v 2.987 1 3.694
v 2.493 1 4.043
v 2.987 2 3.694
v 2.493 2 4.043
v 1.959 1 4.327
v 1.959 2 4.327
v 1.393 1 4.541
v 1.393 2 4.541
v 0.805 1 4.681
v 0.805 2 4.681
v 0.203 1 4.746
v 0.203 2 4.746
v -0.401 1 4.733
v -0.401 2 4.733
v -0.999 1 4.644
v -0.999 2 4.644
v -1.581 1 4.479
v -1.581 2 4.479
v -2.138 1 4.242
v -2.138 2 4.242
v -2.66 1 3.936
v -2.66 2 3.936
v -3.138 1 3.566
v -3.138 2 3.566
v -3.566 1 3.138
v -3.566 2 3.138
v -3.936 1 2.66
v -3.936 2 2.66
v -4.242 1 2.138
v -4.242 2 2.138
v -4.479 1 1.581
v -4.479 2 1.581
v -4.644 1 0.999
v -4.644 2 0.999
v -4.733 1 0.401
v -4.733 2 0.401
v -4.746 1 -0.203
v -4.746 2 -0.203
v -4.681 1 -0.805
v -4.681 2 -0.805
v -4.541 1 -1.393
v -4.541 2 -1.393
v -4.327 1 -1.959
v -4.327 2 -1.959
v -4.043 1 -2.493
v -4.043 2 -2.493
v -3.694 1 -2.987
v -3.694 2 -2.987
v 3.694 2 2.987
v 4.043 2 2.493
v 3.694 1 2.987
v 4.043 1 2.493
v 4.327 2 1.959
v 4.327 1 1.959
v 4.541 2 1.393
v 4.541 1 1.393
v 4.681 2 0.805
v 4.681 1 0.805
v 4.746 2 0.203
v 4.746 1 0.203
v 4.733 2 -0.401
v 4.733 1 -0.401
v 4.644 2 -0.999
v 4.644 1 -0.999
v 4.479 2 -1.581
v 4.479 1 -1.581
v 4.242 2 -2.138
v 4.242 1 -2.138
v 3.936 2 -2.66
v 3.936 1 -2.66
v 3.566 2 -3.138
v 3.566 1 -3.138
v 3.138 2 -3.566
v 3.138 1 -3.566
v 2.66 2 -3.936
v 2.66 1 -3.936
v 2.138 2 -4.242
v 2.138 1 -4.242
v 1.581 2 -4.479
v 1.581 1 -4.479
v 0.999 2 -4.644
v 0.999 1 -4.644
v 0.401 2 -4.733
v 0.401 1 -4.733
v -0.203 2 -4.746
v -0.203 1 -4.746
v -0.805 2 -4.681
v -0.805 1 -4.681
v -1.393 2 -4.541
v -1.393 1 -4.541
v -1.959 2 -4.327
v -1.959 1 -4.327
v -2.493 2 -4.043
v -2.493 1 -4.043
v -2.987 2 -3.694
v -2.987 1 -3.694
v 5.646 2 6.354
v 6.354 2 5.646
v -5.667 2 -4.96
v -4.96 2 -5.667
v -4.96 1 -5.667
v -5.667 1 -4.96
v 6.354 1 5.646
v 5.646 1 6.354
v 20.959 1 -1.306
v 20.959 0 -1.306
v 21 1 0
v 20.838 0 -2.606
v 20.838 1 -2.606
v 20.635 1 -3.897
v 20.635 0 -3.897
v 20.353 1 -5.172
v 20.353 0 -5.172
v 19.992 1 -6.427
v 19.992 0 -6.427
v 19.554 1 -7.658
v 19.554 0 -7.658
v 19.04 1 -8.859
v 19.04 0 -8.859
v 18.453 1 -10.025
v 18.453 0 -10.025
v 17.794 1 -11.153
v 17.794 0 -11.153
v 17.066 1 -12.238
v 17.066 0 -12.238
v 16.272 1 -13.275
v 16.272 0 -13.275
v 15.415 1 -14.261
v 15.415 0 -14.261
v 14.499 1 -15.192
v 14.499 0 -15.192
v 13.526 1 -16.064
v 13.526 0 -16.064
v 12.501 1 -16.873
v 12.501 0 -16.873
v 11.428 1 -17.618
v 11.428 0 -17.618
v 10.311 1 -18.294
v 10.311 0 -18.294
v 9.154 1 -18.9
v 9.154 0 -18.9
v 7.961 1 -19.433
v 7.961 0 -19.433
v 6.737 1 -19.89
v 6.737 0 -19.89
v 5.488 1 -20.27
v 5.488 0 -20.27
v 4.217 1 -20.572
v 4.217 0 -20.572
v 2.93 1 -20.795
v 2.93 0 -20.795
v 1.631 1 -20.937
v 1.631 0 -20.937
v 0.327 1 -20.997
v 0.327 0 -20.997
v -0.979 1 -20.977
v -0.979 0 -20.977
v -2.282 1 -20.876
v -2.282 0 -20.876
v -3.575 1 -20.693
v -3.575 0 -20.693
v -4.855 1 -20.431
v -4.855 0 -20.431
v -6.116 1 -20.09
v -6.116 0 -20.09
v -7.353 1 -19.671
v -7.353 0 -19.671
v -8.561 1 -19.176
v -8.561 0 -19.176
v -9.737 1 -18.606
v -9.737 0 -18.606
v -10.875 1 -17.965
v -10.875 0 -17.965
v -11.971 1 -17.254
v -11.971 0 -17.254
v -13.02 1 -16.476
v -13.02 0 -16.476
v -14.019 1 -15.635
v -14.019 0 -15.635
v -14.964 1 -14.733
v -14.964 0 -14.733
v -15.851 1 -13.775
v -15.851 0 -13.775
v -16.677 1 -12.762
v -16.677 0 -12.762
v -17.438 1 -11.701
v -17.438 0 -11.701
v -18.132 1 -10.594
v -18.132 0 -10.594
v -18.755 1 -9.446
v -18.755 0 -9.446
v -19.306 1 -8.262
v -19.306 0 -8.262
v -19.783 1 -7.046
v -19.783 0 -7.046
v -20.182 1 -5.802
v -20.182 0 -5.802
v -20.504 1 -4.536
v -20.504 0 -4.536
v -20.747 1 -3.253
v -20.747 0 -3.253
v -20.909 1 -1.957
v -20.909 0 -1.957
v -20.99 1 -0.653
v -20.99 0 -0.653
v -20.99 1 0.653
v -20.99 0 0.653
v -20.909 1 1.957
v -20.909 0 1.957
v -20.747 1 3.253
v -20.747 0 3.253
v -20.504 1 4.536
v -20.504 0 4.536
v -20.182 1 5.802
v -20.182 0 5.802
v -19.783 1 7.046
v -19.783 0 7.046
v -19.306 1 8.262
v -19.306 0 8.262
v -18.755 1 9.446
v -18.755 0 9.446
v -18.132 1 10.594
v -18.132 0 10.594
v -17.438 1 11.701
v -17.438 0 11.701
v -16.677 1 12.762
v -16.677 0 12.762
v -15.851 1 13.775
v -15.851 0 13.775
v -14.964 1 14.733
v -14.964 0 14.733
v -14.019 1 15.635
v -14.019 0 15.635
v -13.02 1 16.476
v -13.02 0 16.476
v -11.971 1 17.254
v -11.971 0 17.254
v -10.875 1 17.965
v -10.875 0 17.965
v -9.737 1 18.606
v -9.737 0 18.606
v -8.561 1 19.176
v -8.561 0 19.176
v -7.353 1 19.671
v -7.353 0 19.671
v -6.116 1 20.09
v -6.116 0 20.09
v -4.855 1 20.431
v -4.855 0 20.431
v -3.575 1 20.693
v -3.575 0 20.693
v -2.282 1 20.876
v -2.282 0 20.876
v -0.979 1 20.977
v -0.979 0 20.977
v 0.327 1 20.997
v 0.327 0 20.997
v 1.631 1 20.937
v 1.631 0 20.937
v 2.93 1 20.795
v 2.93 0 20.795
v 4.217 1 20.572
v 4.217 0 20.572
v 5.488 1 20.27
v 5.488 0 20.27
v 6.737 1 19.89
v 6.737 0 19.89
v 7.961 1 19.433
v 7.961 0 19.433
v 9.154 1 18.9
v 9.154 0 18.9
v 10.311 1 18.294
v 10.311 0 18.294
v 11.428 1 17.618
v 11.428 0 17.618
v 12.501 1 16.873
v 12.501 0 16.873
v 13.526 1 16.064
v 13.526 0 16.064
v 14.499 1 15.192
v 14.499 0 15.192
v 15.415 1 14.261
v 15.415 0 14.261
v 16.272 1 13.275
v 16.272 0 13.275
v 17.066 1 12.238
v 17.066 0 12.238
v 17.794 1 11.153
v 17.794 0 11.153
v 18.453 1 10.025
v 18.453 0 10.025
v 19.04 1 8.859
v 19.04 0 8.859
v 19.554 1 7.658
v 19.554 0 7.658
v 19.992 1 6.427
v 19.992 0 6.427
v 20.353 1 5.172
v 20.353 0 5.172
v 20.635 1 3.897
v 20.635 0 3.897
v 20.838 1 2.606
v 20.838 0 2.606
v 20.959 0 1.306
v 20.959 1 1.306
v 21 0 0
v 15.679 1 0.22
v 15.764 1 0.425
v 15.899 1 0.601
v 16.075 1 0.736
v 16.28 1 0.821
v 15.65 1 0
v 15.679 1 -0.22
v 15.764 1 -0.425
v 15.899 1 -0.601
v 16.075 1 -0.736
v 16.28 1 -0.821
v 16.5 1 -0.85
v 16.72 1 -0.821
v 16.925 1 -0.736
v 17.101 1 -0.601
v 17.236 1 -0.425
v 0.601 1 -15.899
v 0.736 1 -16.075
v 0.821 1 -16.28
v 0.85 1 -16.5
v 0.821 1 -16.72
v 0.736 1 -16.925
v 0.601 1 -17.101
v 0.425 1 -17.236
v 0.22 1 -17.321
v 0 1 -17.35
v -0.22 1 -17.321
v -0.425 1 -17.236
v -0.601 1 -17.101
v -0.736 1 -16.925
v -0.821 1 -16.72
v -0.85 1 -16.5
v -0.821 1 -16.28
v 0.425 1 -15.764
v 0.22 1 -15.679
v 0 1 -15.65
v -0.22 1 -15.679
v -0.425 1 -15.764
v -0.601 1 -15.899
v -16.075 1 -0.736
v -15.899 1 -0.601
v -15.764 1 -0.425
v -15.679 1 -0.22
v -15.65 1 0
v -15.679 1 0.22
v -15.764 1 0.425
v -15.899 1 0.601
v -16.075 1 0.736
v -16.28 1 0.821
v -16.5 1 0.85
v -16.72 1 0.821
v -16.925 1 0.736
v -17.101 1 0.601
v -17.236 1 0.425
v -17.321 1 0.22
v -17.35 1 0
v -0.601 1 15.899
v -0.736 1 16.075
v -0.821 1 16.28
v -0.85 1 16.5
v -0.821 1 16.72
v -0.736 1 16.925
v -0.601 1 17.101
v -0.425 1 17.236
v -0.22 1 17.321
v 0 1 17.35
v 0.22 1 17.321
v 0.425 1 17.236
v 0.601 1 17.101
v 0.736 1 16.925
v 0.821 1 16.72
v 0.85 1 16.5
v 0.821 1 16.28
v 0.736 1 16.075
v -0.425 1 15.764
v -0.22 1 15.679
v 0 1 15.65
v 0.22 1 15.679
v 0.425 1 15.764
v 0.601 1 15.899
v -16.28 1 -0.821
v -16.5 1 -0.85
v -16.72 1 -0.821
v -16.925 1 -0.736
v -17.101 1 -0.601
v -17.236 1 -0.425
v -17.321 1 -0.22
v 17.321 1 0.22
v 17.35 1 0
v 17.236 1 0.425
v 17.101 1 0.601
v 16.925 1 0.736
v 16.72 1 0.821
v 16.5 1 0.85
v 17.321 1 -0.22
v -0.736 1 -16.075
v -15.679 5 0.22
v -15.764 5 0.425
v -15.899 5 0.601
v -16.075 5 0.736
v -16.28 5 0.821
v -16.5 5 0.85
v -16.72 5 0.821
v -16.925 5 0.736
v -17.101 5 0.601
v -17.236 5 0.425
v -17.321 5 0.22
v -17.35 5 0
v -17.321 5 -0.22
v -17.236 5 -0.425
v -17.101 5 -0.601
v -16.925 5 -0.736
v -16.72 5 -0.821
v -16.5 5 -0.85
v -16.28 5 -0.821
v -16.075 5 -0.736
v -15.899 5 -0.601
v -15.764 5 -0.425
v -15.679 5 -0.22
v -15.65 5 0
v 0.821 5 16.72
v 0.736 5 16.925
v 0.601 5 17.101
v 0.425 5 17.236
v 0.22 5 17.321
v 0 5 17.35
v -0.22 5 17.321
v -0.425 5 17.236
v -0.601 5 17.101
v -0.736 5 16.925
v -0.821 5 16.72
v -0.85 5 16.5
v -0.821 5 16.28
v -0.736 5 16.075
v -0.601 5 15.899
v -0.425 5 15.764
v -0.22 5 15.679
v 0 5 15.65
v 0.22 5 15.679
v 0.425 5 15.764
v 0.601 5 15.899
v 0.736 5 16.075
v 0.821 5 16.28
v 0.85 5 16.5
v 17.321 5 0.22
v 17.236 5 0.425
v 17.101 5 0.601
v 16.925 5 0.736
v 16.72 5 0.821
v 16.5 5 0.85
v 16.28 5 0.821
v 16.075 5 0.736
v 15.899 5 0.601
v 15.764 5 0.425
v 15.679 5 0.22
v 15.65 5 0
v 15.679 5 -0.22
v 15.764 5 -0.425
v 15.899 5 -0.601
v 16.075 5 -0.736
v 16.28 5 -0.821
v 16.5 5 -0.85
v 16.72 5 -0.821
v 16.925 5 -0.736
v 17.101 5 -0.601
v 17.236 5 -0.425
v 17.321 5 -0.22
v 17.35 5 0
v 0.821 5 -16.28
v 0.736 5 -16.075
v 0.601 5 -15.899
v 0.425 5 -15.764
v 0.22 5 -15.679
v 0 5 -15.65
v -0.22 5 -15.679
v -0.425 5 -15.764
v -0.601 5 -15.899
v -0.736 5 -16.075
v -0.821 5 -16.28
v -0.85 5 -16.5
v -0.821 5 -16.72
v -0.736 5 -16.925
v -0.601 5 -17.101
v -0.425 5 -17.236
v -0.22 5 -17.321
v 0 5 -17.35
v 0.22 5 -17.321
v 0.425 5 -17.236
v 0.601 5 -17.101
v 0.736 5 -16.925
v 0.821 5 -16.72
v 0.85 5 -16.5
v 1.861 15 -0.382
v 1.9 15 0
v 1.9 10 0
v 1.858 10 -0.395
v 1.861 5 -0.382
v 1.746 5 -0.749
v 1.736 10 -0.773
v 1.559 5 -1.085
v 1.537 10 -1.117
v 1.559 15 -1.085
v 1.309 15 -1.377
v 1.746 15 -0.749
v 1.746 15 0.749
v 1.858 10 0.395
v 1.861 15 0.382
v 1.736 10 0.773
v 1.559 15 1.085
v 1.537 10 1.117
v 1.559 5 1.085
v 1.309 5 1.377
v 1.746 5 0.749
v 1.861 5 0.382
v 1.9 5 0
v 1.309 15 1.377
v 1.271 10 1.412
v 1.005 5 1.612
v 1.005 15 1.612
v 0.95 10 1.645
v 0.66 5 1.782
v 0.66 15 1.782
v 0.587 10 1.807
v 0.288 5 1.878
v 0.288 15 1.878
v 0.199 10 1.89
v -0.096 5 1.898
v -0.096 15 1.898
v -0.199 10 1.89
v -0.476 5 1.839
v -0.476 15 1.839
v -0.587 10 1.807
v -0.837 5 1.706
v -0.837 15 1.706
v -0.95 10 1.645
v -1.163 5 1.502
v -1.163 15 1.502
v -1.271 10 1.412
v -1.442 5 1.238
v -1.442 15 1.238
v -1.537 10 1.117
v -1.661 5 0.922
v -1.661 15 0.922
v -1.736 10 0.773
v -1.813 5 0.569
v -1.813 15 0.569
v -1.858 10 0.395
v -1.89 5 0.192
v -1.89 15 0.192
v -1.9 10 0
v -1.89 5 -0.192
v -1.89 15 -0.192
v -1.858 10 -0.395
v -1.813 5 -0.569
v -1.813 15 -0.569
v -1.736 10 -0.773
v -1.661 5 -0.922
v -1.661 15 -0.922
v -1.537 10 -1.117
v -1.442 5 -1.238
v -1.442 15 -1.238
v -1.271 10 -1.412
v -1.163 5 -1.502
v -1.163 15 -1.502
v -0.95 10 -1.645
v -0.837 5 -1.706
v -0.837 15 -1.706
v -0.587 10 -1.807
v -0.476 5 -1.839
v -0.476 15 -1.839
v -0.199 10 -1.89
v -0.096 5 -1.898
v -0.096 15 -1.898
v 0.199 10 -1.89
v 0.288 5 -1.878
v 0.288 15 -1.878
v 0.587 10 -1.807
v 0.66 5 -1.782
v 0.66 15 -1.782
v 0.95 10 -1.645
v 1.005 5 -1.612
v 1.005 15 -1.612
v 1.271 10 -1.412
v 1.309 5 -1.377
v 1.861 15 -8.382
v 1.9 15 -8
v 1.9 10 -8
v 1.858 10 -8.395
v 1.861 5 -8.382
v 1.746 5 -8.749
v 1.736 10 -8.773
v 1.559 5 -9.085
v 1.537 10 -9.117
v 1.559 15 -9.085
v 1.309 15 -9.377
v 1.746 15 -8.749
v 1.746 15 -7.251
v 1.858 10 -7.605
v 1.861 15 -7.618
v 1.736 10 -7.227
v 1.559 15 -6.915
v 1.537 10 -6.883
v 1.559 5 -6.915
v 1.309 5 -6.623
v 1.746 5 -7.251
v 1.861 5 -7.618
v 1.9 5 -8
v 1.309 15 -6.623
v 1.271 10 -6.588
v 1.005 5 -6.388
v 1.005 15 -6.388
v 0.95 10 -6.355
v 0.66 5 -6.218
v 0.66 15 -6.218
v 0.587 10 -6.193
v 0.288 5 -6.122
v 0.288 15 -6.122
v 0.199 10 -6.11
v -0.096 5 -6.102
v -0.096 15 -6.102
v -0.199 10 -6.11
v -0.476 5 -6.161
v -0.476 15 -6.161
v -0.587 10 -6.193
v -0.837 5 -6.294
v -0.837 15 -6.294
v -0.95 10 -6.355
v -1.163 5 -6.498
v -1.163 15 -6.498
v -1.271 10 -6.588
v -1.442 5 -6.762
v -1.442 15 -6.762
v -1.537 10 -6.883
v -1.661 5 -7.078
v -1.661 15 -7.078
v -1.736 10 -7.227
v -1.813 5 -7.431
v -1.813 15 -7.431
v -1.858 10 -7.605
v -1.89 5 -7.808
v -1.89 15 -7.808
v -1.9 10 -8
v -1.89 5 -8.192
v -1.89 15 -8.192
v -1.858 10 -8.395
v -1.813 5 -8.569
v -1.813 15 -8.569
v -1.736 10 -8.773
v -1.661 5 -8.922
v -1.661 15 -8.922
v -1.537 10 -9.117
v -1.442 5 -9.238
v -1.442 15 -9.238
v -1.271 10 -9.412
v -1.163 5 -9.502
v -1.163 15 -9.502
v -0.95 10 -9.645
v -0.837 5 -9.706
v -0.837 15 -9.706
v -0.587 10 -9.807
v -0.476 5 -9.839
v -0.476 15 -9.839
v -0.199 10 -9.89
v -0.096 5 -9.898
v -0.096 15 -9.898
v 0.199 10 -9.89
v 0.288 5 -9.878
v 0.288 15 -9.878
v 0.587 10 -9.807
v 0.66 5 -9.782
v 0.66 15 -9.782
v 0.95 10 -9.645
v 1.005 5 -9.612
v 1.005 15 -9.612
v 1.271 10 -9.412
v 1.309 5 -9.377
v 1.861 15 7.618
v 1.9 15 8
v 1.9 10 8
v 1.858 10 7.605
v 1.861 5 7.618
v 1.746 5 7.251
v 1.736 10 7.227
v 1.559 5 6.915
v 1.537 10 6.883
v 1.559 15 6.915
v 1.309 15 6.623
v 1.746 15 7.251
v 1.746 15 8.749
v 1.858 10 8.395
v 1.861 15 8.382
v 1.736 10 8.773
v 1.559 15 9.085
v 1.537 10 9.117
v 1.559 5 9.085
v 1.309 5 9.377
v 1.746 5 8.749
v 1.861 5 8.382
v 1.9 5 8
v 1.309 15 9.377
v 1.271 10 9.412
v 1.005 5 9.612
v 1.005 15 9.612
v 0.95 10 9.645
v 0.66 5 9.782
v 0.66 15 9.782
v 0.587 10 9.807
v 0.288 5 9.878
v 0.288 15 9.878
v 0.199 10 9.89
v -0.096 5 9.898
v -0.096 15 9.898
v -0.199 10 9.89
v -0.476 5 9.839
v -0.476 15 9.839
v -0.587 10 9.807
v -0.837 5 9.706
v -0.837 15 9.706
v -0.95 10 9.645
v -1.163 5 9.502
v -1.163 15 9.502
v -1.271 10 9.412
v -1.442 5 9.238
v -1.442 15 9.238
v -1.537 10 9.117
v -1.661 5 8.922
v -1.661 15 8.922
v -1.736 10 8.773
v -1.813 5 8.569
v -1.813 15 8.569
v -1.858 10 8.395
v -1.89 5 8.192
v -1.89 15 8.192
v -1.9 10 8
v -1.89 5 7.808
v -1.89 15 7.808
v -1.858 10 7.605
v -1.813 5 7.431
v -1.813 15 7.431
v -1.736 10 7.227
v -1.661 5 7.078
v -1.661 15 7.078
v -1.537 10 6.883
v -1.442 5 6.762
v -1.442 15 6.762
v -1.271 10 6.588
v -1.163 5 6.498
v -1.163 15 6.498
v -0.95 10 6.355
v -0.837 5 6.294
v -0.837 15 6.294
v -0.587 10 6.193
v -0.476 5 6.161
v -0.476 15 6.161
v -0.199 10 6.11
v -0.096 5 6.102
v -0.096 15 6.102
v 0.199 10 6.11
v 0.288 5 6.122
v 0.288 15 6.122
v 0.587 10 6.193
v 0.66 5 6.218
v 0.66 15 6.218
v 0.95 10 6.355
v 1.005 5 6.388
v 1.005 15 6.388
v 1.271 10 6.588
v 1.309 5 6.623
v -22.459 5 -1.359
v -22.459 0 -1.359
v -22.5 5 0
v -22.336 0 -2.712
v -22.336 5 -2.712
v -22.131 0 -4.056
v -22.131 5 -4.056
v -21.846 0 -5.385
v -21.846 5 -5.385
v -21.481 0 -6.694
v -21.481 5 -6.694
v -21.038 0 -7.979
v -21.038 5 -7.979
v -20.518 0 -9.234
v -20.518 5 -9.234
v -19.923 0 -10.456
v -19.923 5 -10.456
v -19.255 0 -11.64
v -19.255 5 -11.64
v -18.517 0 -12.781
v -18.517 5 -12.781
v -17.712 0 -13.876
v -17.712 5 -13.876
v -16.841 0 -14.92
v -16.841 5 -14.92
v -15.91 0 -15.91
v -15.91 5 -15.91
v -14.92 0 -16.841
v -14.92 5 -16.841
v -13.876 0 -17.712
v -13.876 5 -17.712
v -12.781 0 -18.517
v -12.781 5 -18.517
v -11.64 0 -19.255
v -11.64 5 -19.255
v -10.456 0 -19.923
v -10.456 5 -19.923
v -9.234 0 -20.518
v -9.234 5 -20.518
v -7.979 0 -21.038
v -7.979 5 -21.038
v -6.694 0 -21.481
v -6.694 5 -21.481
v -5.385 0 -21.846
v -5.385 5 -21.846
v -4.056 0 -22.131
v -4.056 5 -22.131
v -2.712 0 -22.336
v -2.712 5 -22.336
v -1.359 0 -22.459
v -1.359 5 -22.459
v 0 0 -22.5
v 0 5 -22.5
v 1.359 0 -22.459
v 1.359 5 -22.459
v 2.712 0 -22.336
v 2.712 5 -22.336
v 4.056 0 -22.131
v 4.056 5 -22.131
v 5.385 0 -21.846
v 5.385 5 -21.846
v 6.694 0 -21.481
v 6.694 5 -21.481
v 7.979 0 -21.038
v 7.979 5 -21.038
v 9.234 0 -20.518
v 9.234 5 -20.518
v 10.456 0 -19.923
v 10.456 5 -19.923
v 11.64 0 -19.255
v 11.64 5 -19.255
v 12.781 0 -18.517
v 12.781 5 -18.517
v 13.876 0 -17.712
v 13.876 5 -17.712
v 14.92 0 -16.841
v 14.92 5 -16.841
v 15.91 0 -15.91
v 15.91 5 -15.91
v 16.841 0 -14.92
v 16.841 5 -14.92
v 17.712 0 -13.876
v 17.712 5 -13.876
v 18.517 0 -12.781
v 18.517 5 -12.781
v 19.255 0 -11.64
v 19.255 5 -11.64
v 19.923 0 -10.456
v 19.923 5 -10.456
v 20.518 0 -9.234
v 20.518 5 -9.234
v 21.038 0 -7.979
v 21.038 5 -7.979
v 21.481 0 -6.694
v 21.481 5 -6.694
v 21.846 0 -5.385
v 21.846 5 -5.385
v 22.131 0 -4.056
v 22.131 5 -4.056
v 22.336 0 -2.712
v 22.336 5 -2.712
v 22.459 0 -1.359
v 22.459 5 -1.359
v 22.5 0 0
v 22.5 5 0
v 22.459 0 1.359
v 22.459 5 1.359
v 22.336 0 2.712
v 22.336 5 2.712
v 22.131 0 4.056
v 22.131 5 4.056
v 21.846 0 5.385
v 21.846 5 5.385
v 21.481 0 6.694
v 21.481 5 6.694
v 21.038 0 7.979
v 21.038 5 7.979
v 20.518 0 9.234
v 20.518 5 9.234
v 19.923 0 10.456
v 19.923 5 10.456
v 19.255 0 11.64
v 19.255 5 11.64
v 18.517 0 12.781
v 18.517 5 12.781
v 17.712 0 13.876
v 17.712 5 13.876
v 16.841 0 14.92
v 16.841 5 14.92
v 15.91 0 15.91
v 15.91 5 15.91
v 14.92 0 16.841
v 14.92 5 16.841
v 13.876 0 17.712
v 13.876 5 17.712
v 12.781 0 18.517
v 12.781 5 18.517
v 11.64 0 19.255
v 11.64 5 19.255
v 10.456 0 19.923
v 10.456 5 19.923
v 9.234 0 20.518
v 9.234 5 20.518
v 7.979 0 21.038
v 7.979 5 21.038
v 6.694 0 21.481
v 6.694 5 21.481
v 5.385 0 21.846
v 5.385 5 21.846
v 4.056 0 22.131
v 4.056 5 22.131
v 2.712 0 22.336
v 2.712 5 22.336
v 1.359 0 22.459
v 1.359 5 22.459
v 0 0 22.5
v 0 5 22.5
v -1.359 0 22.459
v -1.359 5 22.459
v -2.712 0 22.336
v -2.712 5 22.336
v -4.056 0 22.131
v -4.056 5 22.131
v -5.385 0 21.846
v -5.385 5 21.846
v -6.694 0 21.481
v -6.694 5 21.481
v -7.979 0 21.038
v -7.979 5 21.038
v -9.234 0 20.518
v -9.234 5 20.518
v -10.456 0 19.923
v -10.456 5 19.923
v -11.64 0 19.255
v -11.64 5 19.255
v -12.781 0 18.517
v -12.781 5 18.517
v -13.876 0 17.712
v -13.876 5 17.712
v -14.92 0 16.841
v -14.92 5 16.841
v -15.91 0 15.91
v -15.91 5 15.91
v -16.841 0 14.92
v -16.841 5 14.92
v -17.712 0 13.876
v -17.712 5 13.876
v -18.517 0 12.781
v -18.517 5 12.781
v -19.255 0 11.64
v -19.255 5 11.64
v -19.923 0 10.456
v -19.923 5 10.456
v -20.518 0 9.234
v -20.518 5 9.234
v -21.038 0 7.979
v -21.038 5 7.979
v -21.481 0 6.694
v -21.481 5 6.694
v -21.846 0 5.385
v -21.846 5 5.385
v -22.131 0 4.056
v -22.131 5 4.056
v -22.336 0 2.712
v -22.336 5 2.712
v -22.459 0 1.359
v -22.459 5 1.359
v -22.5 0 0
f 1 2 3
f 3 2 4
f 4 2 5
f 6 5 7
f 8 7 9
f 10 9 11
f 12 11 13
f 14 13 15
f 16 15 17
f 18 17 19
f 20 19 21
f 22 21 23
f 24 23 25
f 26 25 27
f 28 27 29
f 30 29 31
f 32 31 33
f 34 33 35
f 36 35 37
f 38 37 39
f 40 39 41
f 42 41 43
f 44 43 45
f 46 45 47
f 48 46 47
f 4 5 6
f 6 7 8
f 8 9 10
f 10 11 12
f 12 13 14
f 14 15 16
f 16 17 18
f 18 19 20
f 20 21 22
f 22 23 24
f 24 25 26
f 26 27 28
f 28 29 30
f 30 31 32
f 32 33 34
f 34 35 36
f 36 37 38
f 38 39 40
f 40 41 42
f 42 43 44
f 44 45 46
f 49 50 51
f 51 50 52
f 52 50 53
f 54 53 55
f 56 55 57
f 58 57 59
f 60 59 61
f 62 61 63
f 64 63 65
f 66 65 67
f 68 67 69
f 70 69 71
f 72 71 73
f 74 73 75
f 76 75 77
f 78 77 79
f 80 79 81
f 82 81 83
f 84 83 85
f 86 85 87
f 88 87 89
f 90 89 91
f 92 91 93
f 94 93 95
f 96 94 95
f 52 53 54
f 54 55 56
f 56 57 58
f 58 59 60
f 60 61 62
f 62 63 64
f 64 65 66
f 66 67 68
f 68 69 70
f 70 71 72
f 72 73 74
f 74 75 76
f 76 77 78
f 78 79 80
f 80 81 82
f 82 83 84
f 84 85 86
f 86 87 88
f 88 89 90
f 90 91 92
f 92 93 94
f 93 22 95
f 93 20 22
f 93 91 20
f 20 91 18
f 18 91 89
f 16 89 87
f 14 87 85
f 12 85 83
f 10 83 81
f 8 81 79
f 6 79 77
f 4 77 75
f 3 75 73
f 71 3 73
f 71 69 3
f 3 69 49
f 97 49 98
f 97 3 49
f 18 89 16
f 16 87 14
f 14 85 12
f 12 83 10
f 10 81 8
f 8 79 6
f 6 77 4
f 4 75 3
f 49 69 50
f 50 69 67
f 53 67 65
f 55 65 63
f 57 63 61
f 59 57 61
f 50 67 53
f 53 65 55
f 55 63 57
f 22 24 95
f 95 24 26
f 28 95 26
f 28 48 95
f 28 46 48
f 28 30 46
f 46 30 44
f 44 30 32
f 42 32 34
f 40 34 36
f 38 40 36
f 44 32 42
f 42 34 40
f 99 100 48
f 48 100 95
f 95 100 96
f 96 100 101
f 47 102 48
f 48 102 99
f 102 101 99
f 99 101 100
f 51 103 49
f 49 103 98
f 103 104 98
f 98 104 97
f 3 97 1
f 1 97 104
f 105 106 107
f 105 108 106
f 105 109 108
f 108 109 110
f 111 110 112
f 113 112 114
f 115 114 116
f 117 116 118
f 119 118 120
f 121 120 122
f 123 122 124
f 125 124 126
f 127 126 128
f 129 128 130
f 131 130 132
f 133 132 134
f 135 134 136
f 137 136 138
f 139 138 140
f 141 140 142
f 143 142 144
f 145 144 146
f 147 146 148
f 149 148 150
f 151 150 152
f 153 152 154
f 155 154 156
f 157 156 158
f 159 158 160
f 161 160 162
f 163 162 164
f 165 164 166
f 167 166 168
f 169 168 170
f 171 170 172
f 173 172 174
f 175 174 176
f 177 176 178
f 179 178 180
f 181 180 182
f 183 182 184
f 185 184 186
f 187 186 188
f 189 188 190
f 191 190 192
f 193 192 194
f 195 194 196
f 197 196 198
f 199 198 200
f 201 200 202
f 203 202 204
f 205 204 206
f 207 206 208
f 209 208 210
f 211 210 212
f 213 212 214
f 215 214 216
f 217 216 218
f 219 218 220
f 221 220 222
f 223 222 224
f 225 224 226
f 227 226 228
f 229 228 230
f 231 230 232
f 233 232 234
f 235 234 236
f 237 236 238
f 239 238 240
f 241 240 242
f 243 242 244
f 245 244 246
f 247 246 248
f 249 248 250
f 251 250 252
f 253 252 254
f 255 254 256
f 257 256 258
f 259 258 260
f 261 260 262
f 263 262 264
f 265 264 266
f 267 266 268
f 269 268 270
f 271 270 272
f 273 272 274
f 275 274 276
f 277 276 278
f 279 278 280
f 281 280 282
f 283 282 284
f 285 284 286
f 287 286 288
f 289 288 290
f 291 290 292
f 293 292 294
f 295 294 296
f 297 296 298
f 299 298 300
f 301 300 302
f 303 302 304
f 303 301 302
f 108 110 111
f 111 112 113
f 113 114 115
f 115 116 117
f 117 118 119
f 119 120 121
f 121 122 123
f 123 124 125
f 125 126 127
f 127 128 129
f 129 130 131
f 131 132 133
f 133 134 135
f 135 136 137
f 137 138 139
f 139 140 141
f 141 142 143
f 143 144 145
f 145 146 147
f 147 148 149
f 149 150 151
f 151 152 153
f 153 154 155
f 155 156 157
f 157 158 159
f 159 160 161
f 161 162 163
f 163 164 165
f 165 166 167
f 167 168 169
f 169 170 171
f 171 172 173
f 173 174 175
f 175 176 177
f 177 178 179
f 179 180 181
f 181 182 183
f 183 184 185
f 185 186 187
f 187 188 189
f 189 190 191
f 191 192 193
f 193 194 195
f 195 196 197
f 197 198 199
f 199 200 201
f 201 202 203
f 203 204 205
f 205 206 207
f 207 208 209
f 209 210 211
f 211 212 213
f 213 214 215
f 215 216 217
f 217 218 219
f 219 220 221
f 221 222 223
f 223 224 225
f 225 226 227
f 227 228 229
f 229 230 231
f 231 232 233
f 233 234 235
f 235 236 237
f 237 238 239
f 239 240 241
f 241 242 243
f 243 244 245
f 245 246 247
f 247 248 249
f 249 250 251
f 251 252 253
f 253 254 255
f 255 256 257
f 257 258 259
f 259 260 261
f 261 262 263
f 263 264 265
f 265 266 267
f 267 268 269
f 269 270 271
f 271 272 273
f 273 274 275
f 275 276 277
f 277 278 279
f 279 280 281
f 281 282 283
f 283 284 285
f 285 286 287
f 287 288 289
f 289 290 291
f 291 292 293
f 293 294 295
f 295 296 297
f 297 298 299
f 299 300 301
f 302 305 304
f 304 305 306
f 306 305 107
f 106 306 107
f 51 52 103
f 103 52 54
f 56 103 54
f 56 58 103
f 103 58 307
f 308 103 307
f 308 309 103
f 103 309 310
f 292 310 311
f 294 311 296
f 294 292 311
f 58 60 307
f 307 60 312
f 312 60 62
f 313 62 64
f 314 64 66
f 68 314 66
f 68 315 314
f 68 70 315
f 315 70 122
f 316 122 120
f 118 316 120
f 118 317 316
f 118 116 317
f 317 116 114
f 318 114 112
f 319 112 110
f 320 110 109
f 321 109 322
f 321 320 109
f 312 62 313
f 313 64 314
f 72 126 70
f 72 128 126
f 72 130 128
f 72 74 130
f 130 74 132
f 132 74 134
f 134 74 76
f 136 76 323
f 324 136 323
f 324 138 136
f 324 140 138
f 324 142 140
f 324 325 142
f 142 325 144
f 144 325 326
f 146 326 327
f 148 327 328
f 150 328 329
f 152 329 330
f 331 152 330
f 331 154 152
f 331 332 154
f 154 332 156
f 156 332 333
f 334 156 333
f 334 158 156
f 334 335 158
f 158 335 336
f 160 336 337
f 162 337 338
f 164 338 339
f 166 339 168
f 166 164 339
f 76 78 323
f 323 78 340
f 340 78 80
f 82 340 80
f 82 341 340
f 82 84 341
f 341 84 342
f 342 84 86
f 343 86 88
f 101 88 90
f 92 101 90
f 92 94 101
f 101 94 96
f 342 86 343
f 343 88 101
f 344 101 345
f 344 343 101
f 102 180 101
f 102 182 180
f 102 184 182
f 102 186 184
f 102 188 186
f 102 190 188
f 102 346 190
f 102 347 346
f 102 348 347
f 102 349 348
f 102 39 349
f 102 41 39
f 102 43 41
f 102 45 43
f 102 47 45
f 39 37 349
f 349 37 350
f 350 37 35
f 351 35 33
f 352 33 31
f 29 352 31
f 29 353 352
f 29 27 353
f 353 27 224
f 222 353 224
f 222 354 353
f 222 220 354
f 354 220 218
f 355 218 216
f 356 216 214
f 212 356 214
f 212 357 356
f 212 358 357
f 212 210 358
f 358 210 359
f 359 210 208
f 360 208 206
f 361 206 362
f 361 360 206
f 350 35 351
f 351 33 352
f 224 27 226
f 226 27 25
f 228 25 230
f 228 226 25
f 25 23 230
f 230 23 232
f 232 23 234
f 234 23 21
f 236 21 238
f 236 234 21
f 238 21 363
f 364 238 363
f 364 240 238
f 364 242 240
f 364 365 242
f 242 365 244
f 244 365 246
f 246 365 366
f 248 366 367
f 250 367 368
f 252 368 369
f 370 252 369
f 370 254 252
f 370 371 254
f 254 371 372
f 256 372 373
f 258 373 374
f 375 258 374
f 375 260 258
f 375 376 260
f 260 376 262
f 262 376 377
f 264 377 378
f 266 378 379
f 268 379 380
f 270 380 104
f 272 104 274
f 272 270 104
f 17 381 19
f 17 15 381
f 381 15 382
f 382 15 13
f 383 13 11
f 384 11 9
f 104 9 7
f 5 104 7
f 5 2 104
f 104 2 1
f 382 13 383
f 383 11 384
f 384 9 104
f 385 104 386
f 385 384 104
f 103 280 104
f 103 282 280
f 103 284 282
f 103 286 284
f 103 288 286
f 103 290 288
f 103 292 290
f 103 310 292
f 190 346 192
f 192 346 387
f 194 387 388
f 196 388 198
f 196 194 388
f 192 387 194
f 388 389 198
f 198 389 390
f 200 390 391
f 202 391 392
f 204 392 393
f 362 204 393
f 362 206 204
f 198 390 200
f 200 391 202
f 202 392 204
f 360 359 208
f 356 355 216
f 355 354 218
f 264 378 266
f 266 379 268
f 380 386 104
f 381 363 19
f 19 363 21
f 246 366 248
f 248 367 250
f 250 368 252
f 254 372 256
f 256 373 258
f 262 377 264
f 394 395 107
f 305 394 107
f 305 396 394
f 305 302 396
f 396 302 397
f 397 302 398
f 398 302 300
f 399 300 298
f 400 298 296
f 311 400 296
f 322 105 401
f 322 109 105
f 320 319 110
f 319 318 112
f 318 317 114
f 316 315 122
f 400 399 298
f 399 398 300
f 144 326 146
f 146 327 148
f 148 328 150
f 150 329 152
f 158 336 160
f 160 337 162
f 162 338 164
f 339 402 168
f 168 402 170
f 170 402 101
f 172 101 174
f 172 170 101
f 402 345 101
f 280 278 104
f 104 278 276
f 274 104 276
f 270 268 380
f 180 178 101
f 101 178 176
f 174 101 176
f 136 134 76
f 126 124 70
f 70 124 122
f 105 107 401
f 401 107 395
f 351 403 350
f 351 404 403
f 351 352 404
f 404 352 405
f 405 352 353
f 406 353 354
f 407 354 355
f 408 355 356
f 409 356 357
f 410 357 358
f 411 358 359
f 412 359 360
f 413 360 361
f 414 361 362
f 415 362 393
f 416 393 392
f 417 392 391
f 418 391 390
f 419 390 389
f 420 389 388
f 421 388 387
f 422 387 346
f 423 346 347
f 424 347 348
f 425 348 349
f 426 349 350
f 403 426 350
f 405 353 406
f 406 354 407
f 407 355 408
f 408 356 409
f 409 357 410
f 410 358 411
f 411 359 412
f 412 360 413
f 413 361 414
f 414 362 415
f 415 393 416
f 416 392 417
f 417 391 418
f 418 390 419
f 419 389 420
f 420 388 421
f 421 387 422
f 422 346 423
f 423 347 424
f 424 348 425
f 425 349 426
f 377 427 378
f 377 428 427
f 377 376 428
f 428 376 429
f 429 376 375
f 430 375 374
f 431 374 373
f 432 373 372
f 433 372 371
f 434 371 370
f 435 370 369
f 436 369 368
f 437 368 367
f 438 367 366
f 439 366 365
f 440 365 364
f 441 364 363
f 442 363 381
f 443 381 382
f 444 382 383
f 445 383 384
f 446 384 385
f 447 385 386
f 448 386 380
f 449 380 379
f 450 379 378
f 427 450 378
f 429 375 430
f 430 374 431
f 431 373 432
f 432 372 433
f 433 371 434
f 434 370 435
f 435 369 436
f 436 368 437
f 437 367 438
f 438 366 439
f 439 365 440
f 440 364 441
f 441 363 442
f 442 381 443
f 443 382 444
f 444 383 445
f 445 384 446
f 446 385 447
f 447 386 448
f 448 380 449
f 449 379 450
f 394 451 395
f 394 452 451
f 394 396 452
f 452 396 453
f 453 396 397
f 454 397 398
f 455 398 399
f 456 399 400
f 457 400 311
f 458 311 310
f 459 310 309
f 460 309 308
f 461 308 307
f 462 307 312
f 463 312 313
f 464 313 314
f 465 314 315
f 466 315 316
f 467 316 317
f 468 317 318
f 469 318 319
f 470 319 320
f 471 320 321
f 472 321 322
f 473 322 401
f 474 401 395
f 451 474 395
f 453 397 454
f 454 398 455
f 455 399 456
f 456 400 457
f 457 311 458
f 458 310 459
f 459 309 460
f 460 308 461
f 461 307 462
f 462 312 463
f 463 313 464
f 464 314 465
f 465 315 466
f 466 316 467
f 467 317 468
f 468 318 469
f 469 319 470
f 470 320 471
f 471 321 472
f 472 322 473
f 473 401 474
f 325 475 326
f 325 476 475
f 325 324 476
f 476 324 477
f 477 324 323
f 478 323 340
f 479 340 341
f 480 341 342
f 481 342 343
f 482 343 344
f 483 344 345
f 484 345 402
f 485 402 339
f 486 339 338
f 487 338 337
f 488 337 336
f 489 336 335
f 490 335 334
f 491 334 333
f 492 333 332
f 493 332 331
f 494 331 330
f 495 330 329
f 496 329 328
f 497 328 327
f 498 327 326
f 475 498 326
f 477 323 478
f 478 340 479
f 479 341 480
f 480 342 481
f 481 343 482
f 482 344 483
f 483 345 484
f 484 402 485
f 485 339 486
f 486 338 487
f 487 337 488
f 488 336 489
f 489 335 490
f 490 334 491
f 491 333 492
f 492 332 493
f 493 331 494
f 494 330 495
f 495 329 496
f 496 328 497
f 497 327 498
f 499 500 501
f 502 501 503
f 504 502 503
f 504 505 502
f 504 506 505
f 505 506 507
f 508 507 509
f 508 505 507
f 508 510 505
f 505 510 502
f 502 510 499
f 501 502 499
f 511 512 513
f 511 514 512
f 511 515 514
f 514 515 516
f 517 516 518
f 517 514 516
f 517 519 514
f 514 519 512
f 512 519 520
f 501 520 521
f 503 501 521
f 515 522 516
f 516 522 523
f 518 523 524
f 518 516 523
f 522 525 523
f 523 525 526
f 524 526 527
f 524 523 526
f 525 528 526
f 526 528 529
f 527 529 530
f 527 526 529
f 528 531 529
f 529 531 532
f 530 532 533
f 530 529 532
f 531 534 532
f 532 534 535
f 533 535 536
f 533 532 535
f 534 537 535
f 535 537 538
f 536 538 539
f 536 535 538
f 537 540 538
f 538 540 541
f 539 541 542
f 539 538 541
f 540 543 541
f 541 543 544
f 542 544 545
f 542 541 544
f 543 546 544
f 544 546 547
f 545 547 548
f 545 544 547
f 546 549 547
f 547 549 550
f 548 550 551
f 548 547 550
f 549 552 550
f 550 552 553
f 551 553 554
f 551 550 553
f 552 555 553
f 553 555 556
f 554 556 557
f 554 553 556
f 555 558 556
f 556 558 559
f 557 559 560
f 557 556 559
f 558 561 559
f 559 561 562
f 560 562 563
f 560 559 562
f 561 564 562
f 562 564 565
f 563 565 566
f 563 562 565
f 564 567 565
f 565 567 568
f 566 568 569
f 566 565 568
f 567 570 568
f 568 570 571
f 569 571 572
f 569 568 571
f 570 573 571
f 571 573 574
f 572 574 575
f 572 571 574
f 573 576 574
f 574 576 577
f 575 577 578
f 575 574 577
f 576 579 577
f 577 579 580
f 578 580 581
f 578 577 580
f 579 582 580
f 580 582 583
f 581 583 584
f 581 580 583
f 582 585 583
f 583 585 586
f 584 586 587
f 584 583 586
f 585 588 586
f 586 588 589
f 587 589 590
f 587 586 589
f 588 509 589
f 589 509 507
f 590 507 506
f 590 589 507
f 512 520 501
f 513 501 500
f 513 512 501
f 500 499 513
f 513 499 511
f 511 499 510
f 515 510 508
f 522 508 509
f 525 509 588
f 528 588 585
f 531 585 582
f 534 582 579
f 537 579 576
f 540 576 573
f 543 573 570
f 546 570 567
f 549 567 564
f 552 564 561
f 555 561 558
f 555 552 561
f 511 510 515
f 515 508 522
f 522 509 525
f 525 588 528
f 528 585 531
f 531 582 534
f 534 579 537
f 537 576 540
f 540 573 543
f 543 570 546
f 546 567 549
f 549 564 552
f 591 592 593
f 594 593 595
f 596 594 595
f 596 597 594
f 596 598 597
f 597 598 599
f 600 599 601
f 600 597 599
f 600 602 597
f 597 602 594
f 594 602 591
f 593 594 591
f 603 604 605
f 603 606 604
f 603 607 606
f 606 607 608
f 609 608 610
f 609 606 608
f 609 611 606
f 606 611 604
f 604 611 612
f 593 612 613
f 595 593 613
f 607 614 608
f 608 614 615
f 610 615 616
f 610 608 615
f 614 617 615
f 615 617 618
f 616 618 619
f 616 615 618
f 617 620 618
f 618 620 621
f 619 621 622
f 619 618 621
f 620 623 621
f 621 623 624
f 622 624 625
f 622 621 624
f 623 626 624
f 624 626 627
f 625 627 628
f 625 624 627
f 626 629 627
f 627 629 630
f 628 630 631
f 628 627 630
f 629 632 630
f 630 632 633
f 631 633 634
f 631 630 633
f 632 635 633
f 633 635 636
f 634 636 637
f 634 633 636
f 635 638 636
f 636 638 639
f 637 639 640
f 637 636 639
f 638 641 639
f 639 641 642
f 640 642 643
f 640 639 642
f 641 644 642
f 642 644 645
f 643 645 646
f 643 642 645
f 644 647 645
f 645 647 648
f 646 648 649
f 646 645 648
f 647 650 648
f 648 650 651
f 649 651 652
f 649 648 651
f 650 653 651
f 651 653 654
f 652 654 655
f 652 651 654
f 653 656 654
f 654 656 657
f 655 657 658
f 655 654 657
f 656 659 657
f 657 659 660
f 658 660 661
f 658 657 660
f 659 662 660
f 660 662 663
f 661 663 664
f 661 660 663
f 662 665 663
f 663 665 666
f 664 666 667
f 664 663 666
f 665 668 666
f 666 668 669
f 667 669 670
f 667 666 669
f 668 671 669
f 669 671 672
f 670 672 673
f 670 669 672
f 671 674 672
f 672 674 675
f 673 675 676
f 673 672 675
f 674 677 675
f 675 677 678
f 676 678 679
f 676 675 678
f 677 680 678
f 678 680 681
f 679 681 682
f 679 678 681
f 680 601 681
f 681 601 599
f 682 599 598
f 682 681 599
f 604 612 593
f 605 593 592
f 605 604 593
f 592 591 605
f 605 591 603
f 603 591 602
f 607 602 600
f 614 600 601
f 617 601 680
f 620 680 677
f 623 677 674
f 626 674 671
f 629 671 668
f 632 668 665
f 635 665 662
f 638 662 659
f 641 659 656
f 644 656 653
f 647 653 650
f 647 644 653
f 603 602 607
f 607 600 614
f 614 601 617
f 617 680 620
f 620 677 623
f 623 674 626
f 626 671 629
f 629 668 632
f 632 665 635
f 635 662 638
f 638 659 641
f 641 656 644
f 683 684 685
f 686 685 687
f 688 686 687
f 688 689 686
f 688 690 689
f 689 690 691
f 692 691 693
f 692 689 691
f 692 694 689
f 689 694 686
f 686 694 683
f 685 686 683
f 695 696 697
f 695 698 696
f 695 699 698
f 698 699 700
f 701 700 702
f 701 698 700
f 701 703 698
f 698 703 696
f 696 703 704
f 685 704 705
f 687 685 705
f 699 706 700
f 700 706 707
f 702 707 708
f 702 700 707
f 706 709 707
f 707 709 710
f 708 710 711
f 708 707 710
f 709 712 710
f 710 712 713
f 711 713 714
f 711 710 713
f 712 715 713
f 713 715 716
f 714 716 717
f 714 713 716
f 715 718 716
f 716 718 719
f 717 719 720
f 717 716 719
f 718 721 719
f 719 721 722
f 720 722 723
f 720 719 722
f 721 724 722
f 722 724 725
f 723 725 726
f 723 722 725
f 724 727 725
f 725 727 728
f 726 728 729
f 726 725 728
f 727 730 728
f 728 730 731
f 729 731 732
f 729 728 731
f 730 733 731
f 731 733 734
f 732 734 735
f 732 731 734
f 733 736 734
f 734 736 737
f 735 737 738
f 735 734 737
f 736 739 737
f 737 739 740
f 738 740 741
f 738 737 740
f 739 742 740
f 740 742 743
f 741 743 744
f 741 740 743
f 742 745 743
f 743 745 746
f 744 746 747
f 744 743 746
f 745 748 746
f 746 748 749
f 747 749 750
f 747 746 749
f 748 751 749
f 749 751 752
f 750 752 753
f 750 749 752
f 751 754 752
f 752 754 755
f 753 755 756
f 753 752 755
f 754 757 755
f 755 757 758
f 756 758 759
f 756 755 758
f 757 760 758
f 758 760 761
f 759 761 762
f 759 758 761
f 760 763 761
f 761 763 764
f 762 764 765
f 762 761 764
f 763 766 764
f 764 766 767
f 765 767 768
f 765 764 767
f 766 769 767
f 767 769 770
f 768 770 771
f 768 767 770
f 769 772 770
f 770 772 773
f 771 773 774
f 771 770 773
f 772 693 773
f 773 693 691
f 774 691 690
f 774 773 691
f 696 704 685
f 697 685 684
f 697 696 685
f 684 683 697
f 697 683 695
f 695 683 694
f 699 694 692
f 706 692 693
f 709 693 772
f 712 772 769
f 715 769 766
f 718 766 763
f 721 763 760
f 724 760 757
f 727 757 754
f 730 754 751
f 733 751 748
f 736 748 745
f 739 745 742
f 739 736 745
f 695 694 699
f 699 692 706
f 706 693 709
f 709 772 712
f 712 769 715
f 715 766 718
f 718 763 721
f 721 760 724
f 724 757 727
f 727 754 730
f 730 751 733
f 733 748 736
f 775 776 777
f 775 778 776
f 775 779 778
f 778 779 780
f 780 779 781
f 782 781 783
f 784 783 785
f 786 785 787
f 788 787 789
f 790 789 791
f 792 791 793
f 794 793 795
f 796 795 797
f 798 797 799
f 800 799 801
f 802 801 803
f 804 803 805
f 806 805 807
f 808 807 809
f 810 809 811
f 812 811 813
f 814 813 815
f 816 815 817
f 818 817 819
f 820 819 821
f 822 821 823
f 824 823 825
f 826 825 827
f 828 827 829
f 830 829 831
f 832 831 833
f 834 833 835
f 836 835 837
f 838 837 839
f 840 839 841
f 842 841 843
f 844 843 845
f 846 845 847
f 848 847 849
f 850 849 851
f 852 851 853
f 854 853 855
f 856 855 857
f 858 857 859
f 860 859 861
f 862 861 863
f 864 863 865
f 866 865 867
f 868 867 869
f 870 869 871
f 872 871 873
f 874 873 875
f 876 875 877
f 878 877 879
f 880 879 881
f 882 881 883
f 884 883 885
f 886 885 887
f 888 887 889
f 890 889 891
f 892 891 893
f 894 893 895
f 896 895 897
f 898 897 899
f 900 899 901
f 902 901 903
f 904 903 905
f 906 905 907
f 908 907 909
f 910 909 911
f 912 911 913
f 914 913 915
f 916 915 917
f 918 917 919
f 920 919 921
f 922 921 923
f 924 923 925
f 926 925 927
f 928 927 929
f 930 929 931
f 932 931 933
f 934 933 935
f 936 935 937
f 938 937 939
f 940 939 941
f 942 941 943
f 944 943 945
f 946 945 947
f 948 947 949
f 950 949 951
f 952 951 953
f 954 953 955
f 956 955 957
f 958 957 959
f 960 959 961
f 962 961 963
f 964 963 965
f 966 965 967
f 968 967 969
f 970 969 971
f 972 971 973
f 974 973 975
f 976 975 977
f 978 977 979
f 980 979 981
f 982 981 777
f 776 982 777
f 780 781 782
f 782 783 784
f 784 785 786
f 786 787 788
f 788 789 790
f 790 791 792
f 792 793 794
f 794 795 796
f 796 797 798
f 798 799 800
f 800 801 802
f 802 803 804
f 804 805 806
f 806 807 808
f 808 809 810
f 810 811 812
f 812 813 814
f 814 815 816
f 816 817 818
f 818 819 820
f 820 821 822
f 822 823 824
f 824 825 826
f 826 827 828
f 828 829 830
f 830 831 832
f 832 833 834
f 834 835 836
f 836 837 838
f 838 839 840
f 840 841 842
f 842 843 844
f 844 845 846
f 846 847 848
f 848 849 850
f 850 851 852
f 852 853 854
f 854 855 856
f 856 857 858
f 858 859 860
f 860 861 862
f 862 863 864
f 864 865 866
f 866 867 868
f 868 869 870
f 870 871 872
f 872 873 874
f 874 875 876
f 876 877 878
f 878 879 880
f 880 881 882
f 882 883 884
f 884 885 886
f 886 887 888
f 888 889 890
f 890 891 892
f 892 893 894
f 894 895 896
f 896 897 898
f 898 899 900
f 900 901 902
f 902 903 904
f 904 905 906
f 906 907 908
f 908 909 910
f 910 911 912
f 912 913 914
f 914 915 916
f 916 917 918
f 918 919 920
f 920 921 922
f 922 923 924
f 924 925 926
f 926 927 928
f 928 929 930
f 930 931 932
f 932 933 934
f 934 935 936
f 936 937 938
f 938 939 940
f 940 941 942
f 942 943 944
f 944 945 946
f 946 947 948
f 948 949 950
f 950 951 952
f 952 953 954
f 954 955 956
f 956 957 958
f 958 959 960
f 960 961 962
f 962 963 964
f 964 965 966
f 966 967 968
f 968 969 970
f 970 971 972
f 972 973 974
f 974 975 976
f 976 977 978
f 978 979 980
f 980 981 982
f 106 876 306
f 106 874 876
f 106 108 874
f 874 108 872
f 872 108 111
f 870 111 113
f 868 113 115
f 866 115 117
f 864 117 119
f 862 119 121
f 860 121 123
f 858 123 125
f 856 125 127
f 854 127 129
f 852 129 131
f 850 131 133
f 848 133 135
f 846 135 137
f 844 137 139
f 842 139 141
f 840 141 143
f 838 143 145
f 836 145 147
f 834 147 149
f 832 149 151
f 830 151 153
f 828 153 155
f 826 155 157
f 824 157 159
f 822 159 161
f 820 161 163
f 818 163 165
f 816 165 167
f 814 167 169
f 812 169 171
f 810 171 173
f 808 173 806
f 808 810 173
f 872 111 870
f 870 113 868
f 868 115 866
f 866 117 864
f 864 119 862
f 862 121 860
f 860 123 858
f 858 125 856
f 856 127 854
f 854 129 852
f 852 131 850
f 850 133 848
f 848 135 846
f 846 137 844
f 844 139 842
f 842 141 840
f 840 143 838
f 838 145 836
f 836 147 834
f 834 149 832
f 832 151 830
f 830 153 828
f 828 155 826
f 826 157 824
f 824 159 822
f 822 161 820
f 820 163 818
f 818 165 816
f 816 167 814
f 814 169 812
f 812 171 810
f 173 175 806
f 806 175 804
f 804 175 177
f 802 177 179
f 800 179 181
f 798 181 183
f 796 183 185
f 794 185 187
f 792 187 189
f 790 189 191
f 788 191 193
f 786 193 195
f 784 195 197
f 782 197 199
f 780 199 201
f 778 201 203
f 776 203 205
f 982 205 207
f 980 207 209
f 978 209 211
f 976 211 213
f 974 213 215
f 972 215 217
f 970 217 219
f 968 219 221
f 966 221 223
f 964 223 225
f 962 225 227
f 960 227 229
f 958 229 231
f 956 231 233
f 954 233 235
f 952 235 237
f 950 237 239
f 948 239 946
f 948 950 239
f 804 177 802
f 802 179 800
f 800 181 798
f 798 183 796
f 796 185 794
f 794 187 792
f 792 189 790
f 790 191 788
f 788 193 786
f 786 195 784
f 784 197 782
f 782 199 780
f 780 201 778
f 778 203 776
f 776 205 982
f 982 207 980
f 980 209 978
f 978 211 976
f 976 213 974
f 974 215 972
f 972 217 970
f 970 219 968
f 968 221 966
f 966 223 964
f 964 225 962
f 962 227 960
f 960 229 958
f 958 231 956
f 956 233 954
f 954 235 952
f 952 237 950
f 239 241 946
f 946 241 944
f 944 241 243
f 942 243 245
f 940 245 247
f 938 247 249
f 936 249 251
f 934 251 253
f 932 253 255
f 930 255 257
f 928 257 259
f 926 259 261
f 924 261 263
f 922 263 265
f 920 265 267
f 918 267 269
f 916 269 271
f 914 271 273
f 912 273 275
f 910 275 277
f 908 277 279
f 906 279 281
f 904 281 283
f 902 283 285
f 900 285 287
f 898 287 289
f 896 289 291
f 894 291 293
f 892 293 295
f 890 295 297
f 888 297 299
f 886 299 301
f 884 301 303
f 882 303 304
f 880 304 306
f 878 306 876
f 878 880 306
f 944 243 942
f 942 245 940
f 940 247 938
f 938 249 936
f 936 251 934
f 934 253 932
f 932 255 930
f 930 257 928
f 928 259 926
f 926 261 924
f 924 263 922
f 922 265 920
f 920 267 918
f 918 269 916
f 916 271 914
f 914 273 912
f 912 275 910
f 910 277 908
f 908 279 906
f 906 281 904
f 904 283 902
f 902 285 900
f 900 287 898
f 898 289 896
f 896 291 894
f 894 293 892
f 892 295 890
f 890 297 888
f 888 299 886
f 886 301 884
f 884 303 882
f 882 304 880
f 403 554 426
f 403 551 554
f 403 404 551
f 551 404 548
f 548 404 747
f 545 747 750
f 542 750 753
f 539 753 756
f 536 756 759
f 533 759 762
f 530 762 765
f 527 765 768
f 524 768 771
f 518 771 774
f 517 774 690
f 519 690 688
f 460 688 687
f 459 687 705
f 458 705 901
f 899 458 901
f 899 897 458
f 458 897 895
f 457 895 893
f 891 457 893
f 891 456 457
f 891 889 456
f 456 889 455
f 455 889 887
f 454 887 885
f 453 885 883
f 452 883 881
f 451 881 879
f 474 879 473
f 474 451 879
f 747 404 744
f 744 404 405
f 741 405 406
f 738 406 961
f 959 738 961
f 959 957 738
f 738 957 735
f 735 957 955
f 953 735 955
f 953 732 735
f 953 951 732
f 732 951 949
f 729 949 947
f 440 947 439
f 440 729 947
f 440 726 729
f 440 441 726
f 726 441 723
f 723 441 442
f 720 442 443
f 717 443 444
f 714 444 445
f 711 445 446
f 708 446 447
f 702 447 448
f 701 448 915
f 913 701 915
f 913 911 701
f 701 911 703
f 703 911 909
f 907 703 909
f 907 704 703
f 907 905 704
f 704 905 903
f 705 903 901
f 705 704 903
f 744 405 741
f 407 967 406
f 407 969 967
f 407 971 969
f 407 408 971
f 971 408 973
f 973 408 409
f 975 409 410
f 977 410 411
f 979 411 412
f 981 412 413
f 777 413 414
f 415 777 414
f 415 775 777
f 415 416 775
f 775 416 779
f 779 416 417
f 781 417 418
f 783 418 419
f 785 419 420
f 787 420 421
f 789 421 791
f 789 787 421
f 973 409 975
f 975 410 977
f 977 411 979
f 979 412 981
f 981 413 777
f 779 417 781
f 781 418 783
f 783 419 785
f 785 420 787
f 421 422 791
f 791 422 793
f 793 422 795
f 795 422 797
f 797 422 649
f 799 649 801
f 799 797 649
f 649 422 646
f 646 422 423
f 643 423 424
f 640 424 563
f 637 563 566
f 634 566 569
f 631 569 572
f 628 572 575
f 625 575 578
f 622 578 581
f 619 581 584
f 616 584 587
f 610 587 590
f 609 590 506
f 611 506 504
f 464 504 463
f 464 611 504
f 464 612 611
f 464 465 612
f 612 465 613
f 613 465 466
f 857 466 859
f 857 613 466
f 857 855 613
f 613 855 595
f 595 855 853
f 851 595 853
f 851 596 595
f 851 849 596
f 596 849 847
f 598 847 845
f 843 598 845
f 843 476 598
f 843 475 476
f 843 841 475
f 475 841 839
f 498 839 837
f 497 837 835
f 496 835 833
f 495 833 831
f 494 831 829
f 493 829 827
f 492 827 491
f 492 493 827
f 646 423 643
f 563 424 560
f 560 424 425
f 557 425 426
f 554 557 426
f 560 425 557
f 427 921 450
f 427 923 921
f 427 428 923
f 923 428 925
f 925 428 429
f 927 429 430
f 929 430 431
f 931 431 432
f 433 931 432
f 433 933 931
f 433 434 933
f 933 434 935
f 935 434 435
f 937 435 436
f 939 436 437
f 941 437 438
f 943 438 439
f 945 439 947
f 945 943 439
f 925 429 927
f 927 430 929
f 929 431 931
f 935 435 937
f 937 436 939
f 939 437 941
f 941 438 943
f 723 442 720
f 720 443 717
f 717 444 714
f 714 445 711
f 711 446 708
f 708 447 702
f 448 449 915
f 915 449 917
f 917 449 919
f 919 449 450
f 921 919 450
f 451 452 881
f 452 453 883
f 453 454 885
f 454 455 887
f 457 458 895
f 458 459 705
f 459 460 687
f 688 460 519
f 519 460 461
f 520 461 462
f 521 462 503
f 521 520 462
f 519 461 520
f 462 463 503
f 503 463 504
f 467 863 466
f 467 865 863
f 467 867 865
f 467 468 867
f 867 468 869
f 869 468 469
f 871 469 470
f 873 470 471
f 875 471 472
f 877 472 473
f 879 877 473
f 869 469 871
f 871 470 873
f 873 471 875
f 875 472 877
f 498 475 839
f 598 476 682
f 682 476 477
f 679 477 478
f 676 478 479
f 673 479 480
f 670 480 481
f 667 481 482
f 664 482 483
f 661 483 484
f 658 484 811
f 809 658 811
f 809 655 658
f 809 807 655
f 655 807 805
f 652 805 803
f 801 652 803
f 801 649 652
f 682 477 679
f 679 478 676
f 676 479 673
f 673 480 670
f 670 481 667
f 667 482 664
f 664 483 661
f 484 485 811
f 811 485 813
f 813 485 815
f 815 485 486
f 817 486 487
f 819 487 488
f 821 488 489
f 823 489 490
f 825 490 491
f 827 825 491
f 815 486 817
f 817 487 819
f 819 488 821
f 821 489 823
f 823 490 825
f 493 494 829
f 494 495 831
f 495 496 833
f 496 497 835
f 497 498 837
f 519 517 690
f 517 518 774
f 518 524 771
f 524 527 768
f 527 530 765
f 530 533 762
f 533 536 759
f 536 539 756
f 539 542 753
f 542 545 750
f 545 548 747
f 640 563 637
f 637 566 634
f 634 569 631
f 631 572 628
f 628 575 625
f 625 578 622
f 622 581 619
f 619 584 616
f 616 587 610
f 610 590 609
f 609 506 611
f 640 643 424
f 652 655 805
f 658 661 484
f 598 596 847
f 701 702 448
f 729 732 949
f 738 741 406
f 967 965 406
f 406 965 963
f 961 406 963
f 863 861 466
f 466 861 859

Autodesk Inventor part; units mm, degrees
ref_plane "YZ Plane" through (0, 0, 0) normal (1, 0, 0) x (0, 1, 0)
ref_plane "XZ Plane" through (0, 0, 0) normal (0, 1, 0) x (-1, 0, 0)
ref_plane "XY Plane" through (0, 0, 0) normal (0, 0, 1) x (1, 0, 0)
sketch "Sketch1" plane through (0, 0, 0) normal (0, 1, 0) x (-1, 0, 0)
  circle A0 centre (0, 0) radius 22.5
  dimension "d0" = 45
extrude "Extrusion1" add sketch "Sketch1" along normal blind 5
sketch "Sketch2" plane through (0, 5, 0) normal (0, 1, 0) x (1, 0, 0)
  line L0 (0, 0) -> (0, 8) construction
  line L1 (0, 0) -> (0, -8) construction
  circle A0 centre (0, 8) radius 1.9
  circle A1 centre (0, 0) radius 1.9
  circle A2 centre (0, -8) radius 1.9
  dimension "d3" = 8
  dimension "d4" = 8
  dimension "d5" = 3.8
  dimension "d6" = 3.8
  dimension "d7" = 3.8
extrude "Extrusion2" add sketch "Sketch2" along normal blind 10
sketch "Sketch7" plane through (0, 0, 0) normal (0, -1, 0) x (1, 0, 0)
  circle A0 centre (0, 0) radius 16.5 construction
  circle A1 centre (0, 16.5) radius 0.85
  circle A2 centre (16.5, 0) radius 0.85
  circle A3 centre (-16.5, 0) radius 0.85
  circle A4 centre (0, -16.5) radius 0.85
  dimension "d42" = 33
  dimension "d43" = 1.7
  dimension "d44" = 1.7
  dimension "d45" = 1.7
  dimension "d46" = 1.7
extrude "Extrusion6" cut sketch "Sketch7" against normal blind 5
sketch "Sketch8" plane through (0, 0, 0) normal (0, -1, 0) x (1, 0, 0)
  circle A0 centre (0, 0) radius 21
  dimension "d49" = 42
extrude "Extrusion7" cut sketch "Sketch8" against normal blind 1
sketch "Sketch9" plane through (0, 1, 0) normal (0, -1, 0) x (1, 0, 0)
  circle A0 centre (0, 0) radius 4.75
  line L0 (0, 0) -> (6, 0) construction
  line L1 (6, 0) -> (6, 6) construction
  line L2 (6, 6) -> (0, 6) construction
  line L3 (0, 6) -> (0, 0) construction
  line L4 (0, 0) -> (6, 6) construction
  line L5 (6, 6) -> (5.6464, 6.3536) construction
  line L6 (5.6464, 6.3536) -> (-5.6673, -4.9602)
  line L7 (-5.6673, -4.9602) -> (-4.9602, -5.6673)
  line L8 (-4.9602, -5.6673) -> (6.3536, 5.6464)
  line L9 (6.3536, 5.6464) -> (5.6464, 6.3536)
  dimension "d52" = 9.5
  dimension "d53" = 6
  dimension "d54" = 6
  dimension "d55" = 0.5
  dimension "d56" = 16
  dimension "d57" = 1
extrude "Extrusion8" cut sketch "Sketch9" against normal blind 1
properties part number "Motor Mount Fancy"
